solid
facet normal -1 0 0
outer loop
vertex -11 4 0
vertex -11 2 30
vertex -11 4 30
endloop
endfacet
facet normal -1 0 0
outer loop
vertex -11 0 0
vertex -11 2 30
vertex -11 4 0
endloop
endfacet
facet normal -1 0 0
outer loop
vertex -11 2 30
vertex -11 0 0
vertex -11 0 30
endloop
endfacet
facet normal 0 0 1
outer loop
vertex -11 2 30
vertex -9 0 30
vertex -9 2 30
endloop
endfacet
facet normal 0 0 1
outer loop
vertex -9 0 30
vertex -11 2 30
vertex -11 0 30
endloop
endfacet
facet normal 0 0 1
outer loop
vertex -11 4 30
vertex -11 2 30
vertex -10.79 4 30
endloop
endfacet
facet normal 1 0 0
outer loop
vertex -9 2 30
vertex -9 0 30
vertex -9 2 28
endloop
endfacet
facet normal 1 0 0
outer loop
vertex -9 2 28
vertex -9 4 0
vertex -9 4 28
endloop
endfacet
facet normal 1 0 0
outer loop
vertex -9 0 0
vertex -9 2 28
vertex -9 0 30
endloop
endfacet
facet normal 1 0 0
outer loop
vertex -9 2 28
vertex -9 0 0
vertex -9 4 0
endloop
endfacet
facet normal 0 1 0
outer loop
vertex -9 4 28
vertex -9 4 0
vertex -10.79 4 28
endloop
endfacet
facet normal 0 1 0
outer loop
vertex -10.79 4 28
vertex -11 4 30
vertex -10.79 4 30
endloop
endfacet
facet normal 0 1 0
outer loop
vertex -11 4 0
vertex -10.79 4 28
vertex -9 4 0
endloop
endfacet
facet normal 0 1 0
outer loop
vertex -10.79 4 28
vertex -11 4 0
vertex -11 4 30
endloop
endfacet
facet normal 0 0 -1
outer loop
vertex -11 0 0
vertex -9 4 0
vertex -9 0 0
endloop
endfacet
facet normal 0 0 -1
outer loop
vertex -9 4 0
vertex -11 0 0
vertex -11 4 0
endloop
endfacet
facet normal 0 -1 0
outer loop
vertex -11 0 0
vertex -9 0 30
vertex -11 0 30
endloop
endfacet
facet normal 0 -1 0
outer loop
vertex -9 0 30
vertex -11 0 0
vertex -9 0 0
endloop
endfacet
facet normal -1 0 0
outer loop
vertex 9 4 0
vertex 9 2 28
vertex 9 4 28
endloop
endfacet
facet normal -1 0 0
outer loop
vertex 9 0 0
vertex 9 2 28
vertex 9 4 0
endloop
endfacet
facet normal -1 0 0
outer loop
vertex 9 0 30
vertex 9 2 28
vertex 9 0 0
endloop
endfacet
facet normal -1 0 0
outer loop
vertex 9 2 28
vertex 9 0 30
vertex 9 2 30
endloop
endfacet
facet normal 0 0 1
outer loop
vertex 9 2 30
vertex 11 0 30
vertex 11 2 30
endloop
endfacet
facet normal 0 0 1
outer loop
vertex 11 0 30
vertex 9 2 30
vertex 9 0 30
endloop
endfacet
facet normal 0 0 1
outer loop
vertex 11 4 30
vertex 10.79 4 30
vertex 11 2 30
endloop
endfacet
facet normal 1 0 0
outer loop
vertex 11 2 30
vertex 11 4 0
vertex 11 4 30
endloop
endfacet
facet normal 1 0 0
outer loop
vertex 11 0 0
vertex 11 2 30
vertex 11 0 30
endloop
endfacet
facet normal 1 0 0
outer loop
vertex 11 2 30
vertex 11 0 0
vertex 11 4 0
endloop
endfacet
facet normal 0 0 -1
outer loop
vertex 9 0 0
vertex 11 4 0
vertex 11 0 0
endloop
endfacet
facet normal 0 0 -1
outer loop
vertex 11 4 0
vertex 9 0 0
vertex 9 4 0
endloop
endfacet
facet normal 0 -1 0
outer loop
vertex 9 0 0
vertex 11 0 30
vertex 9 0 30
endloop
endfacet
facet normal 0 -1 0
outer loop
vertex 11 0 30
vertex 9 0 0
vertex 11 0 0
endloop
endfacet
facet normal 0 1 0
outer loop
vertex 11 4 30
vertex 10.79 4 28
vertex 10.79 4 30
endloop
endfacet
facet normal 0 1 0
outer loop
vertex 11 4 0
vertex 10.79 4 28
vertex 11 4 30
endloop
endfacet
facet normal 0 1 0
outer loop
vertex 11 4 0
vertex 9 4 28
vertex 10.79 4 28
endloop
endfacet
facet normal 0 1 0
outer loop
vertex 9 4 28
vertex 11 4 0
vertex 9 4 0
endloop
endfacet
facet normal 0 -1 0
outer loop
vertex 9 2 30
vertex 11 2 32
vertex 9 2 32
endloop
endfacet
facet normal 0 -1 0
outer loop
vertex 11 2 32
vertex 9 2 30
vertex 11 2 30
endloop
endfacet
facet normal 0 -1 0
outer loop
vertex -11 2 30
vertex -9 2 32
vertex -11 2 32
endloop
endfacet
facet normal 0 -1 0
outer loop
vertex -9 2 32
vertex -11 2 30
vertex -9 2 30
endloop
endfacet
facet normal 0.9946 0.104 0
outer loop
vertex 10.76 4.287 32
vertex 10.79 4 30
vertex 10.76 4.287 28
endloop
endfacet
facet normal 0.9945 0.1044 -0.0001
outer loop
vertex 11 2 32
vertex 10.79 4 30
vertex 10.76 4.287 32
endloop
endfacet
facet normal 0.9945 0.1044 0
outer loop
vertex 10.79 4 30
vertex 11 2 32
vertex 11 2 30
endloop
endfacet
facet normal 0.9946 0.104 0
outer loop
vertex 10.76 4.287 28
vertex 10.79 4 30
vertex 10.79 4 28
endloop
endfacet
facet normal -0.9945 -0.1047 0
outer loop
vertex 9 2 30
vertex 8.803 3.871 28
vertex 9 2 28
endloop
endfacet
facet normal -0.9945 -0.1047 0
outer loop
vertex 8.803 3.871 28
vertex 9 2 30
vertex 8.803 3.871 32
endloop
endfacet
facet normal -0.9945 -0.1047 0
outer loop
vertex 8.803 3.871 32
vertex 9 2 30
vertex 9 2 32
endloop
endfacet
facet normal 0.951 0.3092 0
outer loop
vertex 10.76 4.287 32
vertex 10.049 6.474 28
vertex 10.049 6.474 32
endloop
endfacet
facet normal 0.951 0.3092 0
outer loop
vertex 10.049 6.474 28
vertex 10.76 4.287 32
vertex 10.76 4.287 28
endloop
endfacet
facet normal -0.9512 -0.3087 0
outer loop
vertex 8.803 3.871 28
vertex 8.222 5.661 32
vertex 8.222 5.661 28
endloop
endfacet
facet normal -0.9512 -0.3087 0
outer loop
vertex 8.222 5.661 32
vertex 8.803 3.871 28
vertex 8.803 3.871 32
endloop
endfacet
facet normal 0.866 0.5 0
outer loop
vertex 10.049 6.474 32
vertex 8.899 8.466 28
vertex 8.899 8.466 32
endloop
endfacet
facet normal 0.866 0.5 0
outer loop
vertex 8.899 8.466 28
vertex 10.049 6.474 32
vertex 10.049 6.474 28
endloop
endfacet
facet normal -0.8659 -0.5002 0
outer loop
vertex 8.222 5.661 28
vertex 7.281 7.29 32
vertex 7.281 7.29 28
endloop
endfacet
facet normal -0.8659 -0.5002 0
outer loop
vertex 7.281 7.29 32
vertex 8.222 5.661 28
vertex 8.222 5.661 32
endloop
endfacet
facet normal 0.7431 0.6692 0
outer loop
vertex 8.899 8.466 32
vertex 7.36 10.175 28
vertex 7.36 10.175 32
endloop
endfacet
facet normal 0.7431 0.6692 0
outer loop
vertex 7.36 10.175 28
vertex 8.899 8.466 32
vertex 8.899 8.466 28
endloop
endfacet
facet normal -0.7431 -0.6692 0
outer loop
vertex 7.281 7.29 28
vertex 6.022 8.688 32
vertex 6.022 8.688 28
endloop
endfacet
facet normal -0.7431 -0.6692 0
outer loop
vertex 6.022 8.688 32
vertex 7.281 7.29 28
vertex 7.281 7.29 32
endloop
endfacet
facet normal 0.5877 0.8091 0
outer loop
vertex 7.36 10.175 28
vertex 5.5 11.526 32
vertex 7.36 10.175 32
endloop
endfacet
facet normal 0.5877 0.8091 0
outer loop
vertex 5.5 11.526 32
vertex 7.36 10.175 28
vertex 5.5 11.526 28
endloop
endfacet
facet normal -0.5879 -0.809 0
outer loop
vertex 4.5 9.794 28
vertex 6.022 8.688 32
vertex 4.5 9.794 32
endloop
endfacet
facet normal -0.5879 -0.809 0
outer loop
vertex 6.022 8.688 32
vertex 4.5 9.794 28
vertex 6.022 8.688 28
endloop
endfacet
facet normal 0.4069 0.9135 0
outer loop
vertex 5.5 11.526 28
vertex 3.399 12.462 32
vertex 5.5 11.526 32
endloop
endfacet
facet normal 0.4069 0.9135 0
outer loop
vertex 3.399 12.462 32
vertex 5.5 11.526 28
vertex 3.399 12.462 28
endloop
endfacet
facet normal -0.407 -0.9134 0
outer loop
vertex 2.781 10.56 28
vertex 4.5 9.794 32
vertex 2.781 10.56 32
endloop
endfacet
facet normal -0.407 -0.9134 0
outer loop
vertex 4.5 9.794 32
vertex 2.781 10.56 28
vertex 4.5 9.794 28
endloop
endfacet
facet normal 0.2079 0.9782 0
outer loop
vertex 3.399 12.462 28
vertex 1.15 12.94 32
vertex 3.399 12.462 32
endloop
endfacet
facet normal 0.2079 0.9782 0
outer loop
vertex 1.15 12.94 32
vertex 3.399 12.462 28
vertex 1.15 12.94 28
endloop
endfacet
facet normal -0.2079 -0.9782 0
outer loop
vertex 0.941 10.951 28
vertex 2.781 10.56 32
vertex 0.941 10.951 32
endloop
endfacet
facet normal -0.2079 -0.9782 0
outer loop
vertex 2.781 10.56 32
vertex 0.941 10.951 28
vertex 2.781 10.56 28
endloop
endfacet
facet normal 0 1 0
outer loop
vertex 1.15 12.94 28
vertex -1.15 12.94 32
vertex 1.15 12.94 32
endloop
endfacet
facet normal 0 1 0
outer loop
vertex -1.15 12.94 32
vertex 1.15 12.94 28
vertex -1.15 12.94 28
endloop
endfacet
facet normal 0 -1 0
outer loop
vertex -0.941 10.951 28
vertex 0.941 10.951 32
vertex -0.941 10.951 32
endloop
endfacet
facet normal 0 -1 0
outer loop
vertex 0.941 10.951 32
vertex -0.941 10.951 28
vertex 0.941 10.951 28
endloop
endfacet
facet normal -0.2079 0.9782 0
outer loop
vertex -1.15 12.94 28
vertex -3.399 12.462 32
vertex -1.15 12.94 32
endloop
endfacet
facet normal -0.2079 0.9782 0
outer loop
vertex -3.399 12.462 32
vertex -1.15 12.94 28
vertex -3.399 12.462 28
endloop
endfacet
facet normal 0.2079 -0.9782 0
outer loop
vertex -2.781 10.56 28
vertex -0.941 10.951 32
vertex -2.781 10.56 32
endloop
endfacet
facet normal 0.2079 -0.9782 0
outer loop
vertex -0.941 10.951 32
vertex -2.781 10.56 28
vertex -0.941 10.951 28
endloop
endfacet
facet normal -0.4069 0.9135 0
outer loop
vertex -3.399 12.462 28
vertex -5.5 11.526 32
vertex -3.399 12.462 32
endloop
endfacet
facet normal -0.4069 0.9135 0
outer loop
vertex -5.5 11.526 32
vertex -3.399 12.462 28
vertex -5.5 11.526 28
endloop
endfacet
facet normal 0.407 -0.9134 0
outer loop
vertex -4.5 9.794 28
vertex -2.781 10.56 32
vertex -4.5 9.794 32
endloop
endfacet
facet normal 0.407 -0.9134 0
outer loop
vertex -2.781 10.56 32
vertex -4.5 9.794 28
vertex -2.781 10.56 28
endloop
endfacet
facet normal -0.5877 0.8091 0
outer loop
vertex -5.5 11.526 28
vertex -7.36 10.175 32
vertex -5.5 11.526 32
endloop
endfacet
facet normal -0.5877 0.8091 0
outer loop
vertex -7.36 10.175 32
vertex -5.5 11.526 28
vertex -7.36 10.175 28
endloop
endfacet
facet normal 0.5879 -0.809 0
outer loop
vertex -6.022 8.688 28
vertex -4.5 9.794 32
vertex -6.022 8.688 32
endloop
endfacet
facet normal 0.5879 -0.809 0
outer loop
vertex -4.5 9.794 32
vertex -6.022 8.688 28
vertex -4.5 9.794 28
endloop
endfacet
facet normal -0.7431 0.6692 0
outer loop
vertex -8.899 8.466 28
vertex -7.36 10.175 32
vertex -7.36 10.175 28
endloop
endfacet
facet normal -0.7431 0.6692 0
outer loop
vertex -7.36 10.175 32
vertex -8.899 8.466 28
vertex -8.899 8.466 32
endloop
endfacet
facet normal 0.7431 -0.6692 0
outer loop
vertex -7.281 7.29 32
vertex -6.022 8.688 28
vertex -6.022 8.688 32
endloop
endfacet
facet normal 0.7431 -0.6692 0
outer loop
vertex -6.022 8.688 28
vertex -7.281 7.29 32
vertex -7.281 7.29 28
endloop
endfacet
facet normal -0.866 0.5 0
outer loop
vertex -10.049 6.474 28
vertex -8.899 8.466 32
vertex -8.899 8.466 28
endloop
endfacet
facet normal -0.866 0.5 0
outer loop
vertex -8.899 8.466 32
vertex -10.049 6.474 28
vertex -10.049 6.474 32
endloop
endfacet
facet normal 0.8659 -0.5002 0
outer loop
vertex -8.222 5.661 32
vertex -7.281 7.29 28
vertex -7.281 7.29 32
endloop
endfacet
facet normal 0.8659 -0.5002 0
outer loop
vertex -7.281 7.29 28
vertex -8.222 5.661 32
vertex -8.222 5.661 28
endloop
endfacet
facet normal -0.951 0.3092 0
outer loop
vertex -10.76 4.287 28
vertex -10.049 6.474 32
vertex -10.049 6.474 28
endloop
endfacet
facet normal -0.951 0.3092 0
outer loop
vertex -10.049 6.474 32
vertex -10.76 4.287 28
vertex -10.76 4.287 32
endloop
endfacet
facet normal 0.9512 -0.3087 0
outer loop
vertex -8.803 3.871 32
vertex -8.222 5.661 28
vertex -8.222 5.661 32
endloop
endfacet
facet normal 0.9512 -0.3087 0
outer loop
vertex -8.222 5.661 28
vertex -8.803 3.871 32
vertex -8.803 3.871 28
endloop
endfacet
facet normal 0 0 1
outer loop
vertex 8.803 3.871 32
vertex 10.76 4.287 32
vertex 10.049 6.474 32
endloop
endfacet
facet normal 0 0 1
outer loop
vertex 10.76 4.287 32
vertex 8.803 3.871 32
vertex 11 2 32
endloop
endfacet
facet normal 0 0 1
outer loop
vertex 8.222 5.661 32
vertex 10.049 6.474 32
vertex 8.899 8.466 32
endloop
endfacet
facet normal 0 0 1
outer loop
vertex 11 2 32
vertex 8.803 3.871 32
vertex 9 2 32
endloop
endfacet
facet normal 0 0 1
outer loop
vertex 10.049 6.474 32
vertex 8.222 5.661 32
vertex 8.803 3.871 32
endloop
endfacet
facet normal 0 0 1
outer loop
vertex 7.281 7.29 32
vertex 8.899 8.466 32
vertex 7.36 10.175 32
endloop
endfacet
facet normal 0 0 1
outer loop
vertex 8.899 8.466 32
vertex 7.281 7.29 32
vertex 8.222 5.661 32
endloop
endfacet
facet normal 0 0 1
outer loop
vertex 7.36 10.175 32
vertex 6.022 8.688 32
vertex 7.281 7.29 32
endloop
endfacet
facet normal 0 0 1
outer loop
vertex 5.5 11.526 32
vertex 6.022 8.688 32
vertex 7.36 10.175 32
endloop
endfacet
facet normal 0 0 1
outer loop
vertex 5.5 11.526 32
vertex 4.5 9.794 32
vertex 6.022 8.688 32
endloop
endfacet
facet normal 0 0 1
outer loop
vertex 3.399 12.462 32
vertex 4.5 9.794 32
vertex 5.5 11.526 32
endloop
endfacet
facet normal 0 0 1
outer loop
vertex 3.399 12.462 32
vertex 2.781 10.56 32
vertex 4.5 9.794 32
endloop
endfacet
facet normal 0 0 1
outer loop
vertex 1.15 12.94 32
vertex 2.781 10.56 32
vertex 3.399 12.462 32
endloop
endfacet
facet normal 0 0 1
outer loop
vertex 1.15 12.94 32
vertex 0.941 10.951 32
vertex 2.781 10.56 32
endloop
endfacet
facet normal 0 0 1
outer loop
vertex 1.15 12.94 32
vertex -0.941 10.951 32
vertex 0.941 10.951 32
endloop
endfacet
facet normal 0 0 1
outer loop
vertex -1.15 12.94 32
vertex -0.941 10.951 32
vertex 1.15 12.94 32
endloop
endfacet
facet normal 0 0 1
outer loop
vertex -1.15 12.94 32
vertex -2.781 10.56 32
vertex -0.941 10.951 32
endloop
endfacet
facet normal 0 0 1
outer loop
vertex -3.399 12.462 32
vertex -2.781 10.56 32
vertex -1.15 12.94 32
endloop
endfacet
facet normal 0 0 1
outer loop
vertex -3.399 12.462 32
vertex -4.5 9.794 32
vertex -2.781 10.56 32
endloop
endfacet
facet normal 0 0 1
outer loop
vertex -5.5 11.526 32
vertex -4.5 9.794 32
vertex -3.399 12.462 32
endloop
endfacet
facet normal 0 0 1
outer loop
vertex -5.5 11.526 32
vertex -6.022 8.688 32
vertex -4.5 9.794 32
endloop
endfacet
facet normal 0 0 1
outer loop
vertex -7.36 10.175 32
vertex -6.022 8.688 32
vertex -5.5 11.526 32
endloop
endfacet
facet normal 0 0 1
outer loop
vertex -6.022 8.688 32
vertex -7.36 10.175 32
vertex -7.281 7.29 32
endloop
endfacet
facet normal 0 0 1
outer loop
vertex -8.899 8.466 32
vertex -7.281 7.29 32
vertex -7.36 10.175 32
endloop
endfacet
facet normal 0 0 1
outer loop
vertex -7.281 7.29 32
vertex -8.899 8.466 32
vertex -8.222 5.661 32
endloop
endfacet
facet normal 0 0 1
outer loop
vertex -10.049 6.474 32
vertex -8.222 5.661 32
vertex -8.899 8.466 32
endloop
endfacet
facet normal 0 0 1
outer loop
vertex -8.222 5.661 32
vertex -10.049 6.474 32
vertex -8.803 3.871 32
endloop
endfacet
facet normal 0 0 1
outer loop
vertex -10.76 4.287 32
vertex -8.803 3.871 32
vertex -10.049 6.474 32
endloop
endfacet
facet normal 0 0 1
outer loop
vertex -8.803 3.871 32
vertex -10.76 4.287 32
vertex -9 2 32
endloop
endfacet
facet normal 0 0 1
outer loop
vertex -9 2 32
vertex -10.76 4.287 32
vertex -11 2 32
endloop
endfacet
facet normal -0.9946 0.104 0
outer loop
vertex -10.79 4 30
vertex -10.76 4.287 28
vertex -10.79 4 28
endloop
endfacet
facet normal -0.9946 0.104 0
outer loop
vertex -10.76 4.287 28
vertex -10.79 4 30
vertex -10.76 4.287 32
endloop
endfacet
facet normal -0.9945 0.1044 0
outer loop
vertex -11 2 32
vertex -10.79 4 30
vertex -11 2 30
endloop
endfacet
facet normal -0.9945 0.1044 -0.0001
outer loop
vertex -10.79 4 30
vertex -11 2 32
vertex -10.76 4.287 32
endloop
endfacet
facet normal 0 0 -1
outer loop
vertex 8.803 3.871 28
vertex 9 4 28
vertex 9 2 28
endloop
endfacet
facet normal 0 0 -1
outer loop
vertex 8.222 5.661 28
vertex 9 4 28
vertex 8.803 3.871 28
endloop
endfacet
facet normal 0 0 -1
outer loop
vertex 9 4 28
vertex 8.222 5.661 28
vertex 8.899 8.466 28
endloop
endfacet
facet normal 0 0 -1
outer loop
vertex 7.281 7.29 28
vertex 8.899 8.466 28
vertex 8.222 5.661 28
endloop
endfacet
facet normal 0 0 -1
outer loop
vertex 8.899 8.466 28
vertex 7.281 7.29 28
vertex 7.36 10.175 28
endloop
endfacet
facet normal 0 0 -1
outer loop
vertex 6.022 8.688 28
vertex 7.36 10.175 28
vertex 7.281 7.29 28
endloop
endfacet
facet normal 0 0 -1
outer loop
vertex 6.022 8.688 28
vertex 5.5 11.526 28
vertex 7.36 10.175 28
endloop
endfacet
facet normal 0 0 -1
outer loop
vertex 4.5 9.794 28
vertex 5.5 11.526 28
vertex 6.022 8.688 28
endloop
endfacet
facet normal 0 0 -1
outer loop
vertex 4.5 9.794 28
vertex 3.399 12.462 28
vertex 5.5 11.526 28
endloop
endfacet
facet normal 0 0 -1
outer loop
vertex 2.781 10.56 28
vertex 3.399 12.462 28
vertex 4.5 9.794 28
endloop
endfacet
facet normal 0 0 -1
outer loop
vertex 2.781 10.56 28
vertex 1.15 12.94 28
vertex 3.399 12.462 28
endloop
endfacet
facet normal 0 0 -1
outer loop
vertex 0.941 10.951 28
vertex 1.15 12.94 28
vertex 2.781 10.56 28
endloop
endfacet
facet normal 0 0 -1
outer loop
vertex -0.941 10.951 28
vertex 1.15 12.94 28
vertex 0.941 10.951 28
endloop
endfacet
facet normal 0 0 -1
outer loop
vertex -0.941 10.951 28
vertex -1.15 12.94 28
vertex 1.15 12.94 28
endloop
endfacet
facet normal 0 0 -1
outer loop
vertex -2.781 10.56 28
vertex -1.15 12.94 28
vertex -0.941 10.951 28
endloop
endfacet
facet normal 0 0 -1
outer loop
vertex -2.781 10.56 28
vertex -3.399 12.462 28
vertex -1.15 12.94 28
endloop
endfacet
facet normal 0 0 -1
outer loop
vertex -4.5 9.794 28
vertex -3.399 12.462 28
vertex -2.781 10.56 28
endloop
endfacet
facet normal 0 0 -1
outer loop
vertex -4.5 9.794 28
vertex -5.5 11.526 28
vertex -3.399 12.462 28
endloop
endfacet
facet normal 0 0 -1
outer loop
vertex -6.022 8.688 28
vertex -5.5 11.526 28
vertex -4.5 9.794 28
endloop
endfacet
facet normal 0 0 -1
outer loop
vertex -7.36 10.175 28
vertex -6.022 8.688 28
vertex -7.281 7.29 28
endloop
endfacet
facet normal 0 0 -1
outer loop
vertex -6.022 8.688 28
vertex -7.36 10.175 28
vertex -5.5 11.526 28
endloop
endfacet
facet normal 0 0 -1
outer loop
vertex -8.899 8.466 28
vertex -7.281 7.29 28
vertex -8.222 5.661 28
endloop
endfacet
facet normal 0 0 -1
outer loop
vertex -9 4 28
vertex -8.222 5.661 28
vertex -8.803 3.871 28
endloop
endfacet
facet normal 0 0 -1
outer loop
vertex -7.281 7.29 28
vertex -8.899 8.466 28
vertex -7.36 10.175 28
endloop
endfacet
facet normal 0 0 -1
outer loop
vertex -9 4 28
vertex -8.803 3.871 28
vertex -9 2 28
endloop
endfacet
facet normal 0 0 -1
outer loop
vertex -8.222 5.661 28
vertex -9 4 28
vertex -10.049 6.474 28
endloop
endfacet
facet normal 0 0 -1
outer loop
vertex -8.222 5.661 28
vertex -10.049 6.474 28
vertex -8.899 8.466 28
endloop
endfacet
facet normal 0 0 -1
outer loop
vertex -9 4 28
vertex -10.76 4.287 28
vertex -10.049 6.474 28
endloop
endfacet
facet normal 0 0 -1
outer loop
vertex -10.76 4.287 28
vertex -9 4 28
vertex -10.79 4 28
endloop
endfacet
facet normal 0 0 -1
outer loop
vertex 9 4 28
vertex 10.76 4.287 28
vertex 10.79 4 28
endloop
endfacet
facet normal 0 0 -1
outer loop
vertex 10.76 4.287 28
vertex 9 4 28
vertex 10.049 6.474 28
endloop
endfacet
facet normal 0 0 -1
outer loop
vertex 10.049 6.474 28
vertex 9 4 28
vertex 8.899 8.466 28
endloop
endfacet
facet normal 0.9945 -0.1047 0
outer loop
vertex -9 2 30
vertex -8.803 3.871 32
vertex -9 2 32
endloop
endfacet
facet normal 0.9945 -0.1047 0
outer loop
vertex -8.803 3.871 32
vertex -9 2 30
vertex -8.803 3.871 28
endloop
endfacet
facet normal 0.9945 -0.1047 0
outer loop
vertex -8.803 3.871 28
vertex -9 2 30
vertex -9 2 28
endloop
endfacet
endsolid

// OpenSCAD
// Parameters
rod_width = 2;     // Width of the rectangular rod
rod_depth = 4;     // Depth (thickness) of the rod
leg_height = 30;   // Height of the vertical legs
arc_radius = 10;   // Inner radius of the arc

module u_shaped_bracket() {
    // Left leg
    translate([-(arc_radius + rod_width/2), 0, 0])
        cube([rod_width, rod_depth, leg_height]);

    // Right leg
    translate([(arc_radius - rod_width/2), 0, 0])
        cube([rod_width, rod_depth, leg_height]);

    // Top arc
    translate([0, rod_depth/2, leg_height])
        rotate_extrude(angle = 180)
            translate([arc_radius, 0, 0])
                square([rod_width, rod_depth], center = true);
}

u_shaped_bracket();
